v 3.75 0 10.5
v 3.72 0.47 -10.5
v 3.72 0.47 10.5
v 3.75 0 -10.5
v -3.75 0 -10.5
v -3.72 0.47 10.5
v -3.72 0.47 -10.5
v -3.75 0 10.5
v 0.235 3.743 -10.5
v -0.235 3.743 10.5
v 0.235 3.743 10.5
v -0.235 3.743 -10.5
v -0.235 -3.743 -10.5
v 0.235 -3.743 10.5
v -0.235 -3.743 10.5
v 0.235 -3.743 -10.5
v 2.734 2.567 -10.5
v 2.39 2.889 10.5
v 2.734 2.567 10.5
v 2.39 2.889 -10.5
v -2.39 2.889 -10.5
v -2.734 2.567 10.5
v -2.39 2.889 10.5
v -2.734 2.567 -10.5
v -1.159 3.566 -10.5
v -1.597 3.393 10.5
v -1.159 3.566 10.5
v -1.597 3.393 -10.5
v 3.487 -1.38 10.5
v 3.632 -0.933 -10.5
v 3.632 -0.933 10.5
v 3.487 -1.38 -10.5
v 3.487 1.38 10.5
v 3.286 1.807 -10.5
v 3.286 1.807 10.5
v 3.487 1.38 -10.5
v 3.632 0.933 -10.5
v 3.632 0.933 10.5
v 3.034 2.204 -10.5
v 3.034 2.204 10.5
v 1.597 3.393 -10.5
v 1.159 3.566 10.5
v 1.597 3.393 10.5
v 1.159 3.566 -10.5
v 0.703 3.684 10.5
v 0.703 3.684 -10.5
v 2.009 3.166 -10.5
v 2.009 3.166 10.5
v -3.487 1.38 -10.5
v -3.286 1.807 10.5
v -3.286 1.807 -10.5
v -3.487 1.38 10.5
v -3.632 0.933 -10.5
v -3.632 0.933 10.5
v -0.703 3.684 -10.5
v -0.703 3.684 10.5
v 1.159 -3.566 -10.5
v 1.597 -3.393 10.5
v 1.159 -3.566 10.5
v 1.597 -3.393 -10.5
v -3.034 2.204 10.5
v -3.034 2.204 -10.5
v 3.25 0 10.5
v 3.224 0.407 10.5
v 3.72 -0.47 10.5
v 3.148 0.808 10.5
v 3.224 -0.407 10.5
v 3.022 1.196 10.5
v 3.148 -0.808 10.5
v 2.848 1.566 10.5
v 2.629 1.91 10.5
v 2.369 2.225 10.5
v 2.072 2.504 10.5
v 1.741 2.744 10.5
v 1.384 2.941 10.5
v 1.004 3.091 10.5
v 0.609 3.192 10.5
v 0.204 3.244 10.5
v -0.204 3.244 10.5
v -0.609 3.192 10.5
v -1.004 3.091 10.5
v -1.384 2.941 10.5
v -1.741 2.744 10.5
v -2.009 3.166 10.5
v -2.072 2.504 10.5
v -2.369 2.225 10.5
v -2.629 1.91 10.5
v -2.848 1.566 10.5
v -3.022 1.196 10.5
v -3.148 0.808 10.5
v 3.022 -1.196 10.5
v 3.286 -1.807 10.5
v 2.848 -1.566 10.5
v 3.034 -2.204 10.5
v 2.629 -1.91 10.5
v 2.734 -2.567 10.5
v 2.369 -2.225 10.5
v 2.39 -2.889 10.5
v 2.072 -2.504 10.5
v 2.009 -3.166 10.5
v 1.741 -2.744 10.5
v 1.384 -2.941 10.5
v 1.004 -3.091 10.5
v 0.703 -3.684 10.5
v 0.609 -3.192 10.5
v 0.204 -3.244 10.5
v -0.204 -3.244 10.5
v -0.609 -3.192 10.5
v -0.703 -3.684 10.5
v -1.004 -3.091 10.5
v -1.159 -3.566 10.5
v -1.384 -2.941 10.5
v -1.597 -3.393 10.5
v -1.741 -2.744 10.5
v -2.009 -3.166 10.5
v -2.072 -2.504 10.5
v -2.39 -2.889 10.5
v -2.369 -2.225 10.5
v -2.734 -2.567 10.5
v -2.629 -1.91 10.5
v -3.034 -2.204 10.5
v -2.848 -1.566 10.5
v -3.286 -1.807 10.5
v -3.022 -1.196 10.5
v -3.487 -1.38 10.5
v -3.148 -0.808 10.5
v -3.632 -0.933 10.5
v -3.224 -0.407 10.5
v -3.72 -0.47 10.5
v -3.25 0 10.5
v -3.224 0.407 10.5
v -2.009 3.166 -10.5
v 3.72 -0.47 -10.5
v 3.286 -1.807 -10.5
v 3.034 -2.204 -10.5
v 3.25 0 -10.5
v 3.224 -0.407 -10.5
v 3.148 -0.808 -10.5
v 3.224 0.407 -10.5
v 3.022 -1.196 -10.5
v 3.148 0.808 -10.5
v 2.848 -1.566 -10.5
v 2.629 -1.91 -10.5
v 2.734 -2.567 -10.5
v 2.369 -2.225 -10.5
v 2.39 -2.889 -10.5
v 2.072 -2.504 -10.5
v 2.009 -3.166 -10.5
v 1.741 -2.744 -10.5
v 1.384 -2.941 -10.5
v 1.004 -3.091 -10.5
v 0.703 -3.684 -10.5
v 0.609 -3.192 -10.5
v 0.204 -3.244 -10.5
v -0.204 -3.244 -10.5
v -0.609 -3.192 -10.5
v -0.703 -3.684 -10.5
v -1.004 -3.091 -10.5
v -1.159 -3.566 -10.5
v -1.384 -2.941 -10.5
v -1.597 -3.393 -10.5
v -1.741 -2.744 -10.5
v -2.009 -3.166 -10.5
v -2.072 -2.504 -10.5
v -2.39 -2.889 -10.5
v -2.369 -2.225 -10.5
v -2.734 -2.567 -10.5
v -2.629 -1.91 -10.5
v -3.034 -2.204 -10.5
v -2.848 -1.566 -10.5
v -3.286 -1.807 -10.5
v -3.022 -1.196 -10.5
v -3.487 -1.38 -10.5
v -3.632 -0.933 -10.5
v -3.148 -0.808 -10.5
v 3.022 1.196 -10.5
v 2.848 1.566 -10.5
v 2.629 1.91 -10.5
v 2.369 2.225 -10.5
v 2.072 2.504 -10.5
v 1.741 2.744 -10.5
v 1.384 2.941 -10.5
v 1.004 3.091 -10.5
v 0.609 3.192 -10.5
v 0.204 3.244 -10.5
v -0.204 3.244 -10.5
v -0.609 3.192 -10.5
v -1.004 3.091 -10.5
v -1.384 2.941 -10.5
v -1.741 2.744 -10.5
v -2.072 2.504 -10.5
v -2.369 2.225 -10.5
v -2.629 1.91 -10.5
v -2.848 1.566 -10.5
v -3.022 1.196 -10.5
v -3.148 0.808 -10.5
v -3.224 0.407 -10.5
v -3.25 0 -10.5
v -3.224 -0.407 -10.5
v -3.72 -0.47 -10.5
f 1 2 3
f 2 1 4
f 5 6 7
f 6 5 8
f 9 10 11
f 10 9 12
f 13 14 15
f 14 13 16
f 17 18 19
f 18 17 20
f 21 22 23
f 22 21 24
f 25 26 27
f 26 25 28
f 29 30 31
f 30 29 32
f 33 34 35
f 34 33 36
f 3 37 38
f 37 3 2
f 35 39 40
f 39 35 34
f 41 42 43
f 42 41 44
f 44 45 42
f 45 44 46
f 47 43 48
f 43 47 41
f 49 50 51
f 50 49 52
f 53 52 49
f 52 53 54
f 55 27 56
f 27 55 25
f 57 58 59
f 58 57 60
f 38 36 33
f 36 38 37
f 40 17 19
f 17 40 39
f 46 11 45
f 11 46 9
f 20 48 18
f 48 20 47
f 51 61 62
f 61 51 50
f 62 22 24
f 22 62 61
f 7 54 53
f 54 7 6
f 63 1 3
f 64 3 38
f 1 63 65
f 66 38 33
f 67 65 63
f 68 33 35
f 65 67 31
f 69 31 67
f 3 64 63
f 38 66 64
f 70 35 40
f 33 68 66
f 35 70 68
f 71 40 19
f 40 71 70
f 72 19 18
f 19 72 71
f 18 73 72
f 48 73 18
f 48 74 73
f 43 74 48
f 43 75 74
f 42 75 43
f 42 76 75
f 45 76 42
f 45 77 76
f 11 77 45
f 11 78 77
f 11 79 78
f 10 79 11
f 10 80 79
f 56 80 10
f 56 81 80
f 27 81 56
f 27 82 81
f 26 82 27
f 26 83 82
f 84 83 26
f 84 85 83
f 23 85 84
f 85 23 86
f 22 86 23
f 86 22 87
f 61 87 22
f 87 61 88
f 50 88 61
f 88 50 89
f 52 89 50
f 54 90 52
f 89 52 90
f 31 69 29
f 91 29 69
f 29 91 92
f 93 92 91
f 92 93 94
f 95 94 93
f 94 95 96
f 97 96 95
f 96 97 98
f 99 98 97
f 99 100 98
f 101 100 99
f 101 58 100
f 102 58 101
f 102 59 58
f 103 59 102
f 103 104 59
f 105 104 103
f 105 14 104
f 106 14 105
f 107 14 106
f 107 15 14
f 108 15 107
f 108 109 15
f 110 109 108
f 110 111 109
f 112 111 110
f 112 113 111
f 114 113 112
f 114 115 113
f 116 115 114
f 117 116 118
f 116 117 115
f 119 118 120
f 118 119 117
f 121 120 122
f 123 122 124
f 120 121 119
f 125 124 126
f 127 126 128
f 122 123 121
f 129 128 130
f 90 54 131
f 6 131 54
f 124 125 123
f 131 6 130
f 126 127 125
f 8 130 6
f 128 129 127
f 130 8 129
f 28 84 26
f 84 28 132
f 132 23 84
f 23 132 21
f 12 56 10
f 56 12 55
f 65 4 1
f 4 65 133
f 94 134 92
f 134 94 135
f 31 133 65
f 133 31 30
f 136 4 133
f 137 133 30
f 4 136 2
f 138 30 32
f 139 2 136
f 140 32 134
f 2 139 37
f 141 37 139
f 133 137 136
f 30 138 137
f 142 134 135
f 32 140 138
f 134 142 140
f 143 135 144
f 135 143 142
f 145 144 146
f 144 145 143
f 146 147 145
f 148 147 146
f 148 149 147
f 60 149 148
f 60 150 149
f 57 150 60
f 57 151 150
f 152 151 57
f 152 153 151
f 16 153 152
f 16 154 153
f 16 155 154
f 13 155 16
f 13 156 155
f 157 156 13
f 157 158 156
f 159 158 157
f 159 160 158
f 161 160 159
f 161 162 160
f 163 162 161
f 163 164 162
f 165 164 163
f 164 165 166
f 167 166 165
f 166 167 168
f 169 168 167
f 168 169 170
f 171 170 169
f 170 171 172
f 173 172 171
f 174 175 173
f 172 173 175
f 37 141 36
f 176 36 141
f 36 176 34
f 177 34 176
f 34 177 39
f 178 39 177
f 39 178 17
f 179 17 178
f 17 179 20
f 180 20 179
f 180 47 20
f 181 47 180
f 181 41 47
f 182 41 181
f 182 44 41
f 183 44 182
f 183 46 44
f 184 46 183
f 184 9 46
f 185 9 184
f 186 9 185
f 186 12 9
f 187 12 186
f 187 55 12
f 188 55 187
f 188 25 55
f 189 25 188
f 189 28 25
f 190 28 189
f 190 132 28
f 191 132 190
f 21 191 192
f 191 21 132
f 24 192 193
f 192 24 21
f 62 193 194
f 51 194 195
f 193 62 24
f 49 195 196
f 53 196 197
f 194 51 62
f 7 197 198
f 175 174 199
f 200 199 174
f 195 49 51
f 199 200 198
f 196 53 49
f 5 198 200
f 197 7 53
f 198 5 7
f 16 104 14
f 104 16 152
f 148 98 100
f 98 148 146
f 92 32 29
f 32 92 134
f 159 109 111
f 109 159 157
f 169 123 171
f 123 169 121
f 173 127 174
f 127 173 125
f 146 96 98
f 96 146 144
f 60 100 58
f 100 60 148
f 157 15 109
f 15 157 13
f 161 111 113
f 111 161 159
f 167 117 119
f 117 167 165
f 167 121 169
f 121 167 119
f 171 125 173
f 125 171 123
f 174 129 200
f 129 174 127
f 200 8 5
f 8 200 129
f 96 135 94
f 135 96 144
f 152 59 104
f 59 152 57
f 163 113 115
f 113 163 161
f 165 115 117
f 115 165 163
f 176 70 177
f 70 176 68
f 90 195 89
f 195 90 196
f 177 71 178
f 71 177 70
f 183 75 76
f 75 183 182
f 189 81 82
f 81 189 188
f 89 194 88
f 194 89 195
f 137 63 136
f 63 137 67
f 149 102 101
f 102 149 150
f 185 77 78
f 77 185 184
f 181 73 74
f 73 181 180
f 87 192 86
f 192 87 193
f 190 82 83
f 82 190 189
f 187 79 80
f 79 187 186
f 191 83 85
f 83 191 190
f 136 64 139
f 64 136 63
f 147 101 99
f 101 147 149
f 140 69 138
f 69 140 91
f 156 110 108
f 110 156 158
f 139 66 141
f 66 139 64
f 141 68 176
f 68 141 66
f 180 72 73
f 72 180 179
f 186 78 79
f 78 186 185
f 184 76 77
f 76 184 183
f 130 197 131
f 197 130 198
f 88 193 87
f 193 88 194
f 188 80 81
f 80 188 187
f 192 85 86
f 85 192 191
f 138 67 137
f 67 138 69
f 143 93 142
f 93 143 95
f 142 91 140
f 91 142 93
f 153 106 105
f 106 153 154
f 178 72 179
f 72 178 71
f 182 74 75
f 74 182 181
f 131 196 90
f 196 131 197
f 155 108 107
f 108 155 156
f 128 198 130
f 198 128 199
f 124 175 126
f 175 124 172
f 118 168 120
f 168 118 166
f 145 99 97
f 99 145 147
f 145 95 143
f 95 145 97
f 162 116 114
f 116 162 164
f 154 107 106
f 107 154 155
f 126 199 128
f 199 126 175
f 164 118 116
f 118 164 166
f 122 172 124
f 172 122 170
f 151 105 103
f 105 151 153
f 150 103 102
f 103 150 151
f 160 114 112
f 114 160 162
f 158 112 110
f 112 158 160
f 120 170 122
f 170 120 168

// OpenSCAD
$fn = 50;


difference() {
	union() {
		translate(v = [0, 0, -10.5000000000]) {
			cylinder(h = 21, r = 3.7500000000);
		}
	}
	union() {
		translate(v = [0, 0, -100.0000000000]) {
			cylinder(h = 200, r = 3.2500000000);
		}
	}
}
